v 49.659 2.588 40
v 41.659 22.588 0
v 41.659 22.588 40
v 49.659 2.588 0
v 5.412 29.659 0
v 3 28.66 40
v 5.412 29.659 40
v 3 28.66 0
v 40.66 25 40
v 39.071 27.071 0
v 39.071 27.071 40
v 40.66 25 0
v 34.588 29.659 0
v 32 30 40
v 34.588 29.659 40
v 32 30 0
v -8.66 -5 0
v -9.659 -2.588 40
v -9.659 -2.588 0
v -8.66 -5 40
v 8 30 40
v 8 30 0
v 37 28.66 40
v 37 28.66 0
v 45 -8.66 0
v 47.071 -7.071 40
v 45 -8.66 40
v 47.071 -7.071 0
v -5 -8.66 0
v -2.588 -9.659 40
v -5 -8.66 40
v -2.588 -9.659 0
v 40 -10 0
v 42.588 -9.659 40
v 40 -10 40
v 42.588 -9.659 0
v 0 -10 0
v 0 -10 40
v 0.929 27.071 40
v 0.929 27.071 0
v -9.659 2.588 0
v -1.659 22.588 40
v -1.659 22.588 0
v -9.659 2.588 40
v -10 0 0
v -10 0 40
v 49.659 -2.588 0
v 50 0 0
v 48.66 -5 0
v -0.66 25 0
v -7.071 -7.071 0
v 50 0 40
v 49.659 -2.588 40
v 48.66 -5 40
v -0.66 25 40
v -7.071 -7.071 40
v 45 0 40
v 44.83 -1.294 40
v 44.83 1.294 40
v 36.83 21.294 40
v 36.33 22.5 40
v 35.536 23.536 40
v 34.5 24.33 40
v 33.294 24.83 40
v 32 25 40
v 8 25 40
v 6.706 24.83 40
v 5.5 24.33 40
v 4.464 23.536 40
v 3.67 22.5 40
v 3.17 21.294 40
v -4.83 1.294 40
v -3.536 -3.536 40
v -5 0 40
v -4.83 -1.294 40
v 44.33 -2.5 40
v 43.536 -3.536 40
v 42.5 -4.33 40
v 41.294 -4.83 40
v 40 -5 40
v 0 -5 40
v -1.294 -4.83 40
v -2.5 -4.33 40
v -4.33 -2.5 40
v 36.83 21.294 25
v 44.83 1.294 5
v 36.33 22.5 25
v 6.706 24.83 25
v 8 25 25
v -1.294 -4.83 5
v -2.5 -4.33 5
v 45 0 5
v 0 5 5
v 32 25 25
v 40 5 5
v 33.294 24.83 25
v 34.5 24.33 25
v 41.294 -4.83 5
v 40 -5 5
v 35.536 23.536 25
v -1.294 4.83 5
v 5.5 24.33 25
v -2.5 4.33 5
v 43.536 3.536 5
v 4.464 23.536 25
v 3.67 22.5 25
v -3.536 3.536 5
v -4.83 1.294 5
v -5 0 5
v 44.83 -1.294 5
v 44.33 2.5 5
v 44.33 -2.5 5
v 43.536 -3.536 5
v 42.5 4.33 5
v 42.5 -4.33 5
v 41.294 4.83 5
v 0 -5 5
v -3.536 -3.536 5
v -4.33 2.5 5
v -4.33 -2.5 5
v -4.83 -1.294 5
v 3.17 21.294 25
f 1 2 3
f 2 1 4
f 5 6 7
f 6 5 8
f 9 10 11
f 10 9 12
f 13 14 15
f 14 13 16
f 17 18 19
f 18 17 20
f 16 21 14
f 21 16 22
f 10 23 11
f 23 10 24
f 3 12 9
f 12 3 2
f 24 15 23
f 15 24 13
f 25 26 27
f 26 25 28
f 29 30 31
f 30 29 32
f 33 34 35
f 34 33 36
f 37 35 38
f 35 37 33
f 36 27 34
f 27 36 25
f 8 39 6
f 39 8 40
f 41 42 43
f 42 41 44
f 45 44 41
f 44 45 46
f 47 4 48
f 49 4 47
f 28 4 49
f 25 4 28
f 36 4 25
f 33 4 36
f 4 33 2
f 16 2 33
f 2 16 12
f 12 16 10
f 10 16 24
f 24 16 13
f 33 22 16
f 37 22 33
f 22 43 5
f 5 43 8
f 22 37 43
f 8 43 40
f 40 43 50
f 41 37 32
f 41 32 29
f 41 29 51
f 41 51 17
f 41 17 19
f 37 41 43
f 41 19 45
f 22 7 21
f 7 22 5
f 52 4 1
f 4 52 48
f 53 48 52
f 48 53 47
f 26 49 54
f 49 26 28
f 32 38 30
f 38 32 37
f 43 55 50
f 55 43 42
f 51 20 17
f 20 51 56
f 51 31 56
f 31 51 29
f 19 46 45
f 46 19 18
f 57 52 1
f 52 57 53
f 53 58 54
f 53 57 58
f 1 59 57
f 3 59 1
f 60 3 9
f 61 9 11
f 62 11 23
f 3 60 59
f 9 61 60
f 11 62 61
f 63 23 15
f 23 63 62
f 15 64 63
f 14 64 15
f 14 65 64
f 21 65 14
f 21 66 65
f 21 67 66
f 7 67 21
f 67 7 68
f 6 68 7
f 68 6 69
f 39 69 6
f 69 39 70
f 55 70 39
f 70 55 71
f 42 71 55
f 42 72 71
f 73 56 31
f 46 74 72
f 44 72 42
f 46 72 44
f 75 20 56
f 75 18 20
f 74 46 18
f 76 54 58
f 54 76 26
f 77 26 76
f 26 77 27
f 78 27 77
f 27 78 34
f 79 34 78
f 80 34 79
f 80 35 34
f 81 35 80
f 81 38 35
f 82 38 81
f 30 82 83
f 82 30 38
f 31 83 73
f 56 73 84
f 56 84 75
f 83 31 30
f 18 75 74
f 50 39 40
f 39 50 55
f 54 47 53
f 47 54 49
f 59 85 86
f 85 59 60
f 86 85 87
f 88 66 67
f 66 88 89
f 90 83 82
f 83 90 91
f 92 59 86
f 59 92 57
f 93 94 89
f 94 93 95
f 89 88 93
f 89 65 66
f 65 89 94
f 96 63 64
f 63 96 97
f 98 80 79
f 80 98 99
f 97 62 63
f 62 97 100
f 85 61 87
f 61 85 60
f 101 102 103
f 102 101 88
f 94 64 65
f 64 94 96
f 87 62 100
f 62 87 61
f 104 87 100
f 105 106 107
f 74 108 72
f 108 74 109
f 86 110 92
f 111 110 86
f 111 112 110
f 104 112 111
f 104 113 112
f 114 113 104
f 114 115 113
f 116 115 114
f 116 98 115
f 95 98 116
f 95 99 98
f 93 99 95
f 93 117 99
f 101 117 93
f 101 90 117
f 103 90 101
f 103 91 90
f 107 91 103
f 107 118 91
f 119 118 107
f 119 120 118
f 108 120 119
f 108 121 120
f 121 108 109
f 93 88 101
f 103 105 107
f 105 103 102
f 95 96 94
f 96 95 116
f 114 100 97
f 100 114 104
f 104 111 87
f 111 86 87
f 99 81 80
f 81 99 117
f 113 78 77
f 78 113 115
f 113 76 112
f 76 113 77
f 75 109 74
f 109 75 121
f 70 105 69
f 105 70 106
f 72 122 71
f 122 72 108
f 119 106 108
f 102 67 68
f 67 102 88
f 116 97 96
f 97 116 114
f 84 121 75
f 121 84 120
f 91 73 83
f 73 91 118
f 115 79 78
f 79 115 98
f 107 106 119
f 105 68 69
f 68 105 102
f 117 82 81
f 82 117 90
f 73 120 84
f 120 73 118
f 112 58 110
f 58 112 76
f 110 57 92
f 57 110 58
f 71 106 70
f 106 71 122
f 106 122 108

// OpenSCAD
$fn = 24;
// $fn = 240;

height = 20;
width = 40;
thickness = 40;
shell_thickness = 20;
roundedness = 10;

module rounded_box(points, radius, height){
    hull(){
        for (p = points){
            translate(p) cylinder(r=radius, h=height);
        }
    }
}

module multiHull(){
    for (i = [1 : $children-1])
        hull(){
            children(0);
            children(i);
        }
}
 
module sequentialHull(){
    for (i = [0: $children-2])
        hull(){
            children(i);
            children(i+1);
        }
}

module remote() {
    centimeters_per_inch = 2.54;
    remote_width = 10 * 1.6 * centimeters_per_inch;
    remote_height = 10 * 0.8 * centimeters_per_inch;
    remote_thickness = 10 * 5.5 * centimeters_per_inch;
    remote_roundedness = 1;
    color("black")
    rounded_box(
        [
            [0.0*remote_width, 0, 0],
            [1.0*remote_width, 0, 0],
            [0.2*remote_width, remote_height, shell_thickness],
            [0.8*remote_width, remote_height, shell_thickness]
        ],
        remote_roundedness,
        remote_thickness
    );
}

module main() {
    // translate([0,0,10])
    // remote();
    #difference(){
        rounded_box(
            [
                [0, 0, 0],
                [width, 0, 0],
                [0.2*width, height, 0],
                [0.8*width, height, 0]
            ],
            roundedness,
            thickness
        );
        #rounded_box(
            [
                [0.0*width, 0, -thickness + 65 - 20],
                [1.0*width, 0, -thickness + 65 - 20],
                [0.2*width, height, -thickness + 65],
                [0.8*width, height, -thickness + 65]
            ],
            roundedness - 5,
            thickness
        );
    }
}

main();
